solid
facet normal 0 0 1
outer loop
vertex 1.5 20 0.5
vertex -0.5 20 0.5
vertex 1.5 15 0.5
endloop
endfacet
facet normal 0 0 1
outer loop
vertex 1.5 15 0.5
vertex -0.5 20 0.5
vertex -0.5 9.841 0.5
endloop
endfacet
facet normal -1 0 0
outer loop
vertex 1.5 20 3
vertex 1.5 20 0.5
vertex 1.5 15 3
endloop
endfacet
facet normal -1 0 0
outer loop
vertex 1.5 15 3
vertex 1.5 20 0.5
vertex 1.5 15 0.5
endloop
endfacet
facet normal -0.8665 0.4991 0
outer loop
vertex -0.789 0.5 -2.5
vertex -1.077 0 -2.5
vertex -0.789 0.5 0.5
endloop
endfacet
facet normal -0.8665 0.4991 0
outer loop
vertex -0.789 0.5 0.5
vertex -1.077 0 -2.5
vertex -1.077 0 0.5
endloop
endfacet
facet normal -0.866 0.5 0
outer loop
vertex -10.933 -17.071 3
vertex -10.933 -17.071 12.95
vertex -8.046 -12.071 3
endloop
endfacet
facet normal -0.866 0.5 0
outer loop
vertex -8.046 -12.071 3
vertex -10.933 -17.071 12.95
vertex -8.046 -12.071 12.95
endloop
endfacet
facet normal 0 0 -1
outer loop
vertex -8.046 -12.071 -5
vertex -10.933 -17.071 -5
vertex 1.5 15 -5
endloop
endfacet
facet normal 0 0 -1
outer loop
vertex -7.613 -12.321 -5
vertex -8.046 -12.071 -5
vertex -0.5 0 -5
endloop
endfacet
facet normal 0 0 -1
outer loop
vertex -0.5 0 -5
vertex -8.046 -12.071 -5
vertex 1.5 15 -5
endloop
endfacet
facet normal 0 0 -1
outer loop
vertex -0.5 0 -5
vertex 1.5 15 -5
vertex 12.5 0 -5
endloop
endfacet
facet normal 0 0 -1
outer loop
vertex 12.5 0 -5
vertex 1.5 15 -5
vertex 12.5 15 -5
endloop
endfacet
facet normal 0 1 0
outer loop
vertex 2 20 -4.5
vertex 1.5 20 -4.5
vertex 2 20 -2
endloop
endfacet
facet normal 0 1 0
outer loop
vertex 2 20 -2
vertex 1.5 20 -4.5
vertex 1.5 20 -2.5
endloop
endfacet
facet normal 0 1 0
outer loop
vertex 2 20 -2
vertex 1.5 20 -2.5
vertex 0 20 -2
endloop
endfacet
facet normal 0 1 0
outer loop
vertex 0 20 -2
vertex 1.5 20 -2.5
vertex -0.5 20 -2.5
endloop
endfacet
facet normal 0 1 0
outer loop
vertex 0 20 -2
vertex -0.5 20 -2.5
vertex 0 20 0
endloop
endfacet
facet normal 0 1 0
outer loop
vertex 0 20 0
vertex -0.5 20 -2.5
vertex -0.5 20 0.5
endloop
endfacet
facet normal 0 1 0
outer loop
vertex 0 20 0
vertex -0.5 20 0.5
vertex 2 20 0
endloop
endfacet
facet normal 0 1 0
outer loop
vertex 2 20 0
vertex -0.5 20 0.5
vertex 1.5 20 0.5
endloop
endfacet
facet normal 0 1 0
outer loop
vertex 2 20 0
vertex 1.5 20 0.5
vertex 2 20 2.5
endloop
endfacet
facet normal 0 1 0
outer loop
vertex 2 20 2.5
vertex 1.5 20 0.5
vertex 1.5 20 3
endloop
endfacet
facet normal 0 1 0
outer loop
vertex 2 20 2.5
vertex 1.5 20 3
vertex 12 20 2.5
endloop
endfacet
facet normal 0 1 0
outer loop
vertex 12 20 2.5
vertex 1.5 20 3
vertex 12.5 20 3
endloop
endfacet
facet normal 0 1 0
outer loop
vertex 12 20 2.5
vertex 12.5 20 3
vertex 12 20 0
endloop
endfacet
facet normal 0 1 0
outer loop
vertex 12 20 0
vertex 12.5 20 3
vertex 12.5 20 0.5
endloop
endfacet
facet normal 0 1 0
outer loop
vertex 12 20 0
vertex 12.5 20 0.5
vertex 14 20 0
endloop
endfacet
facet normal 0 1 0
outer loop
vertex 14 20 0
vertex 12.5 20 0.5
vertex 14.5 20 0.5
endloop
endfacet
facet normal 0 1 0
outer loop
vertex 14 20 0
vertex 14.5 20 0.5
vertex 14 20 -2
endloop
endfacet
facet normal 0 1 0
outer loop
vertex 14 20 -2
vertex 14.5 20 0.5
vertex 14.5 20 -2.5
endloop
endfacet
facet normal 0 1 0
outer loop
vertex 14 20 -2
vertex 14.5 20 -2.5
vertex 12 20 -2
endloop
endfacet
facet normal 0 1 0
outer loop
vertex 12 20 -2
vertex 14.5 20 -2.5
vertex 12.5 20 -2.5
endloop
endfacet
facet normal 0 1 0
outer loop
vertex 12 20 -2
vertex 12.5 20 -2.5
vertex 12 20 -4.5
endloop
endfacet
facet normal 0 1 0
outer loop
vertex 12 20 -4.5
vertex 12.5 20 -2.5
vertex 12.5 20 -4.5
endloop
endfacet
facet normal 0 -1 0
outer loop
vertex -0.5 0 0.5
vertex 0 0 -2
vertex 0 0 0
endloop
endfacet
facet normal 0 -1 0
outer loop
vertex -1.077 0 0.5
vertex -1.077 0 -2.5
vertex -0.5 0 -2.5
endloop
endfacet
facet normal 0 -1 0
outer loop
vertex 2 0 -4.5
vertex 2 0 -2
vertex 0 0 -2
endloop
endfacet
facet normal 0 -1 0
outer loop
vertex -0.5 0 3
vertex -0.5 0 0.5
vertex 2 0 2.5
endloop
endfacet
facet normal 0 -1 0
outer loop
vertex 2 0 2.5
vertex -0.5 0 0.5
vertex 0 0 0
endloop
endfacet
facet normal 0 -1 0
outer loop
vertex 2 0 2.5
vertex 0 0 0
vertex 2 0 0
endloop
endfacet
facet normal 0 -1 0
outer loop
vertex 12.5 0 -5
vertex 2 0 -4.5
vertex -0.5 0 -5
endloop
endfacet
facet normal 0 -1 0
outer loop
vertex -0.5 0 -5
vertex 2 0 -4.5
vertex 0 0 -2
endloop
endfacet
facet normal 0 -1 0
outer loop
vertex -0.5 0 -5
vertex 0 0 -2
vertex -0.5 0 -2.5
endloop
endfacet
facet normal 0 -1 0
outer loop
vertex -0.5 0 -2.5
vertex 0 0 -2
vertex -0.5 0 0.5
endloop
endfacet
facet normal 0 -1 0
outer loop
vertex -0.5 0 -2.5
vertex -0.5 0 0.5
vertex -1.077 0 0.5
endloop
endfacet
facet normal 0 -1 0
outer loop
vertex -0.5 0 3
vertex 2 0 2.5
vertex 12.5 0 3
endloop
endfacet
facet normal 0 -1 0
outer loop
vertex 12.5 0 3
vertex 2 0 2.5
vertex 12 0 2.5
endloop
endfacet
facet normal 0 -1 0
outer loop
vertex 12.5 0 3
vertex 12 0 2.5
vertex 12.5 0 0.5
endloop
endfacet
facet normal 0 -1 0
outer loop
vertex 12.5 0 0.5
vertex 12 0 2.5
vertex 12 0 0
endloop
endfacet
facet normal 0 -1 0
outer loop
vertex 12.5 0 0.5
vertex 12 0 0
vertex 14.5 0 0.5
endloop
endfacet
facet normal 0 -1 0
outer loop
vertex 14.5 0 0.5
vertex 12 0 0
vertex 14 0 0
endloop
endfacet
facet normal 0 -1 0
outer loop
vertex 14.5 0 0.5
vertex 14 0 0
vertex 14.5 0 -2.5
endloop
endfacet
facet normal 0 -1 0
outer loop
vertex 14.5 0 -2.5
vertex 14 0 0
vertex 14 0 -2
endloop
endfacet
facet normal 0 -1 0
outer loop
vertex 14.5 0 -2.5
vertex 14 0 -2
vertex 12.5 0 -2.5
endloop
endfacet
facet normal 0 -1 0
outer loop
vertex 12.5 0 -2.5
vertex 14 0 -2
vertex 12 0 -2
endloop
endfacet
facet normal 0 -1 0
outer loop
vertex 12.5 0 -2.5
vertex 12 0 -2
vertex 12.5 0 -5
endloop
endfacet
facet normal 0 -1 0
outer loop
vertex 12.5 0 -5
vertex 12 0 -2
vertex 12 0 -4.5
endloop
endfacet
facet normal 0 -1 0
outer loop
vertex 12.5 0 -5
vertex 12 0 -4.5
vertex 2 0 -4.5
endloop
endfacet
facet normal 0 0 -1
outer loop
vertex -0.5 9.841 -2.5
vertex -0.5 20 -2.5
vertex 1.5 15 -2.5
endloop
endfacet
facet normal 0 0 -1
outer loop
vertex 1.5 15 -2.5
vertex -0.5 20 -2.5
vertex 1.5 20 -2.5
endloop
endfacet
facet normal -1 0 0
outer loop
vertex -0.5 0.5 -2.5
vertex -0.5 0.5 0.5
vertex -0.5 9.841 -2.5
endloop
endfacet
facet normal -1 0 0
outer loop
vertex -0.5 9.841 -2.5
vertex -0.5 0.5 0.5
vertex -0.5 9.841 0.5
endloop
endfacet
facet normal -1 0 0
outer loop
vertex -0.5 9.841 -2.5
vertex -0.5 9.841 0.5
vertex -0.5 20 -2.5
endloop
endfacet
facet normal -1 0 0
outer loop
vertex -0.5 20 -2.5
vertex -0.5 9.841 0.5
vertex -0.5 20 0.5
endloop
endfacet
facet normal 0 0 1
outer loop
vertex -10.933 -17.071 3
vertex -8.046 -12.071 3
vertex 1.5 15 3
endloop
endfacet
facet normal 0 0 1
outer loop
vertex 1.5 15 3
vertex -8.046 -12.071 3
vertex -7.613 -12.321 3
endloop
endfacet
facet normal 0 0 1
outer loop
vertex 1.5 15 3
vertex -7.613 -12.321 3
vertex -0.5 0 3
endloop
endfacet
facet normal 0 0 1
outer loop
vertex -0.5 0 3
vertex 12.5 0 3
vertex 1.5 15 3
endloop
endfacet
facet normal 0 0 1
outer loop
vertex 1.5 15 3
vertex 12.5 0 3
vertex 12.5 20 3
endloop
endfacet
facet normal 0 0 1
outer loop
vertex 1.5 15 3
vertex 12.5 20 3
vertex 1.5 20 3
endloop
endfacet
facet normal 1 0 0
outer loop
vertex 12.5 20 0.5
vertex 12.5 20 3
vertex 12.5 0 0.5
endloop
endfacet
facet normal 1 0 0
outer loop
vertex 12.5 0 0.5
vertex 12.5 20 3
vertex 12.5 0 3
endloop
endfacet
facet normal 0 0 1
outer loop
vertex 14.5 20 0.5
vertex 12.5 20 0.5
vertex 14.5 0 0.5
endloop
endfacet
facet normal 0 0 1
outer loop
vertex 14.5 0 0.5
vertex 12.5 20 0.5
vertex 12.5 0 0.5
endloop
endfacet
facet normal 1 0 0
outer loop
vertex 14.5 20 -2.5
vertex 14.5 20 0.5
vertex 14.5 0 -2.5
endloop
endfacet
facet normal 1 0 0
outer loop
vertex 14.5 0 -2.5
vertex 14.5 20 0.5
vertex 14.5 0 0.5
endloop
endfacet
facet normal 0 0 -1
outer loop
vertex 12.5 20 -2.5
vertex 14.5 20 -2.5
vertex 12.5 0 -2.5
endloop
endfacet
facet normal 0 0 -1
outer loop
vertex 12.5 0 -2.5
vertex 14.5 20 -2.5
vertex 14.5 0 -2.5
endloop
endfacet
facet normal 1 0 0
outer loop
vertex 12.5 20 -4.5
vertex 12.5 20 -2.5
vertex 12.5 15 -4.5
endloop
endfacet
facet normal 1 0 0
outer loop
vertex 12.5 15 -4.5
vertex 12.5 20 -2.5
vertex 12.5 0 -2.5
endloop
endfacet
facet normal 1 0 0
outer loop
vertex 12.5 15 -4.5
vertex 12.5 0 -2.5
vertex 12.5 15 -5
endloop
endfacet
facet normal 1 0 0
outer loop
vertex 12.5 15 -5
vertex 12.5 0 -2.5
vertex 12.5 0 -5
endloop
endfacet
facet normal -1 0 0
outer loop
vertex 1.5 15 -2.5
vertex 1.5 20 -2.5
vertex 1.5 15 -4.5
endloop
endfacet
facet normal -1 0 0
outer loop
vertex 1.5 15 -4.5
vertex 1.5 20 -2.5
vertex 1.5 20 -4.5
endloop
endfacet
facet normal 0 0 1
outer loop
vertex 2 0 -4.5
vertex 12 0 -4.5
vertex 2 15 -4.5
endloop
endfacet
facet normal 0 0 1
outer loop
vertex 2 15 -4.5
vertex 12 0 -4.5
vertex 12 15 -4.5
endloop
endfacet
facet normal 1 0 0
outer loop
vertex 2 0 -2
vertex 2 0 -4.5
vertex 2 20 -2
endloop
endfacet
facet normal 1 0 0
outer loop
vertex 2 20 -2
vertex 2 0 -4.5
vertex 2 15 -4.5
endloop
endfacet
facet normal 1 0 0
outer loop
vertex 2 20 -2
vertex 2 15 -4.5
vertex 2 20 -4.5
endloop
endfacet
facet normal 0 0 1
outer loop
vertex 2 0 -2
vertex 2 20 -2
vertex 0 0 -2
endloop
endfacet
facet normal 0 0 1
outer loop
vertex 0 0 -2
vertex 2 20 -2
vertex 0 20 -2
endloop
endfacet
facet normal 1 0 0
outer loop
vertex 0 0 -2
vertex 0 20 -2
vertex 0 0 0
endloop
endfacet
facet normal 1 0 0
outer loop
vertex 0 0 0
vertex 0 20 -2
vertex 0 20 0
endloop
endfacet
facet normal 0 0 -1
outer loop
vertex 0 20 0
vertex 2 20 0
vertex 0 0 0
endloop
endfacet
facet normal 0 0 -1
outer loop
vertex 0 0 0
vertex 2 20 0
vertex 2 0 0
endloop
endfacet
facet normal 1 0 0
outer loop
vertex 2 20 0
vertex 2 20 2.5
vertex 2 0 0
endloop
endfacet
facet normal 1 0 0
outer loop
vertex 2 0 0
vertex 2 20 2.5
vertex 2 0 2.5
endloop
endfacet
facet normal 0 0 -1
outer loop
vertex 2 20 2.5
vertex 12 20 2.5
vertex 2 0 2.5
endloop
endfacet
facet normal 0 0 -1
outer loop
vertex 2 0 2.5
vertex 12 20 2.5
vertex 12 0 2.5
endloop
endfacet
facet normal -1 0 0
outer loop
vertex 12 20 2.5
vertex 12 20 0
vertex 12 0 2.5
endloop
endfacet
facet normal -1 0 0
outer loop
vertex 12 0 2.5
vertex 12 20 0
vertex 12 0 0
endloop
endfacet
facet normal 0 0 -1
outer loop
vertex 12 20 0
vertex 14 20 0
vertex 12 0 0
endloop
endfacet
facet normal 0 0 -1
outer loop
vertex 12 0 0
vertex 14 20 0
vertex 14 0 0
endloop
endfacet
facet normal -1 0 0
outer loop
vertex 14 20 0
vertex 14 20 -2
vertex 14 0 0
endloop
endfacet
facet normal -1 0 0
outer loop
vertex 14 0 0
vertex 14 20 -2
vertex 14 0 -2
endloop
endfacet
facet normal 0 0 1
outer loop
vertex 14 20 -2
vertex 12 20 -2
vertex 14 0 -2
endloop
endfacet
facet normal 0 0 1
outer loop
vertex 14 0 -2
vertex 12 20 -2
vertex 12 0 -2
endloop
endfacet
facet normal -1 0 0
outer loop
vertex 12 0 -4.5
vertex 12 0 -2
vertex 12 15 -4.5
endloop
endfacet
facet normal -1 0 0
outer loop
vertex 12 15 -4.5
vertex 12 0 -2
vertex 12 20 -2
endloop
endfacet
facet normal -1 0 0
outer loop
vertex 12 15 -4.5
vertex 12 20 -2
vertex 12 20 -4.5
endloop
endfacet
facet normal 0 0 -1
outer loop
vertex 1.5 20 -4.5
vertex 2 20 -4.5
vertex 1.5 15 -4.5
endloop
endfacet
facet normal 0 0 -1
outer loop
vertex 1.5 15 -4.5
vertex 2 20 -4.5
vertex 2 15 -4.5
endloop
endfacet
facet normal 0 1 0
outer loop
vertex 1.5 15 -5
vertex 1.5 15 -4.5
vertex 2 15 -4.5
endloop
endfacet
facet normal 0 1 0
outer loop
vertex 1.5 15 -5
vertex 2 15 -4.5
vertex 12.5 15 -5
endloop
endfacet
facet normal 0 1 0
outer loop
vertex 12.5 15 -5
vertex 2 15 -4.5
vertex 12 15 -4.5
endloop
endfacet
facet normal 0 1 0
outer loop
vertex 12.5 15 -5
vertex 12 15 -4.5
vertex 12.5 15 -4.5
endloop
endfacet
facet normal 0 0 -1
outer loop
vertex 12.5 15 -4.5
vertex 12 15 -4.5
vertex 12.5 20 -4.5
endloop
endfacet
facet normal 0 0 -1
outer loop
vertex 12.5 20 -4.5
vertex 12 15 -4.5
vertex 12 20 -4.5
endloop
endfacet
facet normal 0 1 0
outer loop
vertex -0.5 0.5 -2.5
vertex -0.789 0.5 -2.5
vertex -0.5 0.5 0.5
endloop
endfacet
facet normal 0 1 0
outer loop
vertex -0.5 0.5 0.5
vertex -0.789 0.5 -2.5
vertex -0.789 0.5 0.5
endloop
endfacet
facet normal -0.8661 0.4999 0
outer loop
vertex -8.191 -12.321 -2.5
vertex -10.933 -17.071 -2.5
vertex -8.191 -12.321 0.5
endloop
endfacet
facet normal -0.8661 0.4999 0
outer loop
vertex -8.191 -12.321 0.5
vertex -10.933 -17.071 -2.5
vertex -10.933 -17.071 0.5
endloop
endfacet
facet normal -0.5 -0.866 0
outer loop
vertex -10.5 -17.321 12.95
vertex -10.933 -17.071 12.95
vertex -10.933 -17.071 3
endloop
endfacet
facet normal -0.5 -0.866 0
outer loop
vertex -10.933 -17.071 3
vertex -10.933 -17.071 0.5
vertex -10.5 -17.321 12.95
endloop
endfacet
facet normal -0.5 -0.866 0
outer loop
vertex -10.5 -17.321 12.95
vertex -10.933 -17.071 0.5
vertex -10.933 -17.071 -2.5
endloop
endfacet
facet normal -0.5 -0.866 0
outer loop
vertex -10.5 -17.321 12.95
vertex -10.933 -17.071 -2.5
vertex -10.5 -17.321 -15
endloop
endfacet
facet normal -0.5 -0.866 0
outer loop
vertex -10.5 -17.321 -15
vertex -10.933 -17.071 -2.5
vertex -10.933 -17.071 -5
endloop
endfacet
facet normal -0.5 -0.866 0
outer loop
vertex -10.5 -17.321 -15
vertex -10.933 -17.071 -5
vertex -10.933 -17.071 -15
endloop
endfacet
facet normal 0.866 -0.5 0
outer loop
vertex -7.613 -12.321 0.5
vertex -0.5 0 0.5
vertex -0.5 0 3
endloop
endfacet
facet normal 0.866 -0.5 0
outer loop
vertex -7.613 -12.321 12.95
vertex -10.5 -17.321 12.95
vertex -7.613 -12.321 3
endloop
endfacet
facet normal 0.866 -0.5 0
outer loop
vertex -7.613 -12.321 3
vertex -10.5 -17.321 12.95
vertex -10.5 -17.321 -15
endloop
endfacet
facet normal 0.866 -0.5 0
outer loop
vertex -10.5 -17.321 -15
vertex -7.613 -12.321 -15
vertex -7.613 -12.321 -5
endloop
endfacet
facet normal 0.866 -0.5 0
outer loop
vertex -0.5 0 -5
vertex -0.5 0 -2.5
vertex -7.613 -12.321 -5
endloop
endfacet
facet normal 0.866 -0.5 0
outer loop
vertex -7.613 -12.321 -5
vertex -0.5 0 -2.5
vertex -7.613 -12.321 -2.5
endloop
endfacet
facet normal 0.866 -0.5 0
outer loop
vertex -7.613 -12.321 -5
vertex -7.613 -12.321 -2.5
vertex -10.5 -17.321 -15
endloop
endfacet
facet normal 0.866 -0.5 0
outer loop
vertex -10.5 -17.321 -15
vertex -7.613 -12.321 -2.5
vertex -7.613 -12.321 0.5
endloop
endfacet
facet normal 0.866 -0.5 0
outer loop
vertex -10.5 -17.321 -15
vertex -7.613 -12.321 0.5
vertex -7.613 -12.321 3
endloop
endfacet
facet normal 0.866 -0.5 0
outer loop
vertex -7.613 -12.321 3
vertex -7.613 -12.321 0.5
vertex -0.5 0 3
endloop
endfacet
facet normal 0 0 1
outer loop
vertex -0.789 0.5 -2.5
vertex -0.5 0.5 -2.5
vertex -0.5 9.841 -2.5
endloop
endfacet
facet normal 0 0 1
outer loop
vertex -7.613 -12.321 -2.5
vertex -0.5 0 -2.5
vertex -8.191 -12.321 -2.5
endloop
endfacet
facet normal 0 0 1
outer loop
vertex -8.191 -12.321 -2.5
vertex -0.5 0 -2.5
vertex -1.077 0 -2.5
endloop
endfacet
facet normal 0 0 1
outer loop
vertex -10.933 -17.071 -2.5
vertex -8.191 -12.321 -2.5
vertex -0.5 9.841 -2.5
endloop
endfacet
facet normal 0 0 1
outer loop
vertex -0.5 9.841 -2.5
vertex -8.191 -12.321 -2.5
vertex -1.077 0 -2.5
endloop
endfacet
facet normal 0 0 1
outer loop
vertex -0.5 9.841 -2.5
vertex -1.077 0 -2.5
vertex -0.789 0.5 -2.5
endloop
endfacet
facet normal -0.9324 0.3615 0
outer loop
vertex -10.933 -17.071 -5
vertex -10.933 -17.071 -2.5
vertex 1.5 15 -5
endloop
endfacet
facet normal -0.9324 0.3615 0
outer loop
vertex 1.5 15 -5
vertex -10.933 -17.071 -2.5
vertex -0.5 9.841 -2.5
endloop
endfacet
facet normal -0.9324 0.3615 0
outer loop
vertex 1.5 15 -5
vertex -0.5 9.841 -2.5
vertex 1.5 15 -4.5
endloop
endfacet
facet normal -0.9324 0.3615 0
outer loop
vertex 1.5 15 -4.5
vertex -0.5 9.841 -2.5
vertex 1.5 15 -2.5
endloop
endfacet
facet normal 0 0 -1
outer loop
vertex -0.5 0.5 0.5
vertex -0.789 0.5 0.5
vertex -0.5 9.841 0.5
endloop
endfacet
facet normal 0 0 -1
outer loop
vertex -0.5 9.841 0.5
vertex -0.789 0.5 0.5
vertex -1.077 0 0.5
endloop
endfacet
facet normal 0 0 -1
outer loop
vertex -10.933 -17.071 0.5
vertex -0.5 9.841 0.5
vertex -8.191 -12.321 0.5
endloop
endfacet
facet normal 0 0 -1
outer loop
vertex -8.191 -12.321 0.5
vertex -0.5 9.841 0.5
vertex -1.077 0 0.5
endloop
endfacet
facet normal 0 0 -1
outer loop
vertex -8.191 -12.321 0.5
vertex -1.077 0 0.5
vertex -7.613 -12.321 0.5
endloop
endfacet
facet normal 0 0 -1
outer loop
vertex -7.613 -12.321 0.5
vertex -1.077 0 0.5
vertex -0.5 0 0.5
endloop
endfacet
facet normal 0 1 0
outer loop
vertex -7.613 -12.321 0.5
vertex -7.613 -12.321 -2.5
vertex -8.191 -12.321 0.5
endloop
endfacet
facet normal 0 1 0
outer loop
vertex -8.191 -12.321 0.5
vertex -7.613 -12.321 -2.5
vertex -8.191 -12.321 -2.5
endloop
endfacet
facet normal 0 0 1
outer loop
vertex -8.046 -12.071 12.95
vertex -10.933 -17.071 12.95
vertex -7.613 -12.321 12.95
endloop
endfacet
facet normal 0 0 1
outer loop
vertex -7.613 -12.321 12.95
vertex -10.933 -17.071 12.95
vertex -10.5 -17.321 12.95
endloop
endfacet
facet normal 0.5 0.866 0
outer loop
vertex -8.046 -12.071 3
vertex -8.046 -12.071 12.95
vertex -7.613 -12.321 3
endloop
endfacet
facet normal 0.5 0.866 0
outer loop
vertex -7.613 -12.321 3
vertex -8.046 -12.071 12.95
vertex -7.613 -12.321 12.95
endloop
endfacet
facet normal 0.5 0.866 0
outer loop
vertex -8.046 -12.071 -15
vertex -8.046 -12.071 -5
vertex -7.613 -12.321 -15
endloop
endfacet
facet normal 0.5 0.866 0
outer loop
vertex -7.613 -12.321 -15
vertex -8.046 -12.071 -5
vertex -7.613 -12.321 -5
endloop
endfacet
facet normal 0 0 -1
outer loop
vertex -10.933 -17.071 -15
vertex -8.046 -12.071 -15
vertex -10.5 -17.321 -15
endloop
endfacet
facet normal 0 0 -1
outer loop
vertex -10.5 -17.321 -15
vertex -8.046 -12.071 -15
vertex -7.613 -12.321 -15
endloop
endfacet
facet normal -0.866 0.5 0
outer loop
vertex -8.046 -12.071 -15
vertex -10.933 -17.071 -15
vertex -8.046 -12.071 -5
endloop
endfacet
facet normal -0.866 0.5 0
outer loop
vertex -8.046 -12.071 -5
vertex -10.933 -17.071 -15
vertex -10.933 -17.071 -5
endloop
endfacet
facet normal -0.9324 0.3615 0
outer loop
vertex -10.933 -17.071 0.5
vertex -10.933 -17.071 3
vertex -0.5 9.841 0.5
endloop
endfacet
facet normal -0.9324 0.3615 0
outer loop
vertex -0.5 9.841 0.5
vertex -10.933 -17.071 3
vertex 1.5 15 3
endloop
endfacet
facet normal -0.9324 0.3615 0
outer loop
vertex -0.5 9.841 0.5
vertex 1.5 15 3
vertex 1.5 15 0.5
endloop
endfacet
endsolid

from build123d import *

# Parameters (mm, degrees)
AUFSATZ_LINEAR_AUSTRAGEN1_DEPTH = 20
SKIZZE2_W                       = 11
SKIZZE2_H                       = 5
SCHNITT_LINEAR_AUSTRAGEN1_DEPTH = 0.5
AUFSATZ_LINEAR_AUSTRAGEN2_DEPTH = 8
SKIZZE4_W                       = 1.5
SKIZZE4_H                       = 2
SCHNITT_LINEAR_AUSTRAGEN2_DEPTH = 8
AUFSATZ_LINEAR_AUSTRAGEN3_DEPTH = 2.5
SKIZZE8_W                       = 3
SKIZZE8_H                       = 12.320508076
SCHNITT_LINEAR_AUSTRAGEN5_DEPTH = 12
SKIZZE9_W                       = 9.95
SKIZZE9_H                       = 5.773502692
SKIZZE9_W_2                     = 10
AUFSATZ_LINEAR_AUSTRAGEN5_DEPTH = 0.5
AUFSATZ_LINEAR_AUSTRAGEN6_DEPTH = 2.5


with BuildPart() as part:
    # Skizze1 → Aufsatz-Linear austragen1 (new body)
    with BuildSketch(Plane(origin=(0, 0, 0), x_dir=(1, 0, 0), z_dir=(0, 1, 0))):
        Polygon((1.5, 2.5), (1.5, 5), (12.5, 5), (12.5, 2.5), (14.5, 2.5), (14.5, -0.5), (12.5, -0.5), (12.5, -3), (1.5, -3), (1.5, -0.5), (-0.5, -0.5), (-0.5, 2.5), align=None)
        Polygon((2, 2), (2, 4.5), (12, 4.5), (12, 2), (14, 2), (14, 0), (12, 0), (12, -2.5), (2, -2.5), (2, 0), (0, 0), (0, 2), align=None, mode=Mode.SUBTRACT)
    extrude(amount=AUFSATZ_LINEAR_AUSTRAGEN1_DEPTH)

    # Skizze2 → Schnitt-Linear austragen1 (cut)
    with BuildSketch(Plane(origin=(0, 0, -5), x_dir=(-1, 0, 0), z_dir=(0, 0, -1))):
        with Locations((-7, 17.5)):
            Rectangle(SKIZZE2_W, SKIZZE2_H)
    extrude(amount=-SCHNITT_LINEAR_AUSTRAGEN1_DEPTH, mode=Mode.SUBTRACT)

    # Skizze3 → Aufsatz-Linear austragen2 (add)
    with BuildSketch(Plane(origin=(0, 0, -5), x_dir=(-1, 0, 0), z_dir=(0, 0, -1))):
        Polygon((-1.5, 0), (0.5, 0), (10.5, -17.320508076), (10.933012702, -17.070508076), (0.788675135, 0.5), (-1.5, 0.5), align=None)
    extrude(amount=-AUFSATZ_LINEAR_AUSTRAGEN2_DEPTH)

    # Skizze4 → Schnitt-Linear austragen2 (cut)
    with BuildSketch(Plane(origin=(0, 0.5, 0), x_dir=(1, 0, 0), z_dir=(0, 1, 0))):
        with Locations((0.75, 1)):
            Rectangle(SKIZZE4_W, SKIZZE4_H)
    extrude(amount=-SCHNITT_LINEAR_AUSTRAGEN2_DEPTH, mode=Mode.SUBTRACT)

    # Skizze6 → Aufsatz-Linear austragen3 (add)
    with BuildSketch(Plane(origin=(0, 0, -5), x_dir=(-1, 0, 0), z_dir=(0, 0, -1))):
        Polygon((-1.5, 15), (10.933012702, -17.070508076), (0.788675135, 0.5), (-1.5, 0.5), align=None)
    extrude(amount=-AUFSATZ_LINEAR_AUSTRAGEN3_DEPTH)

    # Skizze8 → Schnitt-Linear austragen5 (cut)
    with BuildSketch(Plane(origin=(0, 0, 0), x_dir=(0, 0, -1), z_dir=(1, 0, 0))):
        with Locations((1, -6.160254038)):
            Rectangle(SKIZZE8_W, SKIZZE8_H)
    extrude(amount=-SCHNITT_LINEAR_AUSTRAGEN5_DEPTH, mode=Mode.SUBTRACT)

    # Skizze9 → Aufsatz-Linear austragen5 (add)
    with BuildSketch(Plane(origin=(-0.375, 0.216506351, 0), x_dir=(0, 0, -1), z_dir=(0.866025404, -0.5, 0))):
        with Locations((-7.975, -17.363248654)):
            Rectangle(SKIZZE9_W, SKIZZE9_H)
        with Locations((10, -17.363248654)):
            Rectangle(SKIZZE9_W_2, SKIZZE9_H)
    extrude(amount=-AUFSATZ_LINEAR_AUSTRAGEN5_DEPTH)

    # Skizze11 → Aufsatz-Linear austragen6 (add)
    with BuildSketch(Plane.XY.offset(0.5)):
        Polygon((1.5, 0.5), (-0.788675135, 0.5), (-10.933012702, -17.070508076), (1.5, 15), align=None)
    extrude(amount=AUFSATZ_LINEAR_AUSTRAGEN6_DEPTH)


solid = part.part
